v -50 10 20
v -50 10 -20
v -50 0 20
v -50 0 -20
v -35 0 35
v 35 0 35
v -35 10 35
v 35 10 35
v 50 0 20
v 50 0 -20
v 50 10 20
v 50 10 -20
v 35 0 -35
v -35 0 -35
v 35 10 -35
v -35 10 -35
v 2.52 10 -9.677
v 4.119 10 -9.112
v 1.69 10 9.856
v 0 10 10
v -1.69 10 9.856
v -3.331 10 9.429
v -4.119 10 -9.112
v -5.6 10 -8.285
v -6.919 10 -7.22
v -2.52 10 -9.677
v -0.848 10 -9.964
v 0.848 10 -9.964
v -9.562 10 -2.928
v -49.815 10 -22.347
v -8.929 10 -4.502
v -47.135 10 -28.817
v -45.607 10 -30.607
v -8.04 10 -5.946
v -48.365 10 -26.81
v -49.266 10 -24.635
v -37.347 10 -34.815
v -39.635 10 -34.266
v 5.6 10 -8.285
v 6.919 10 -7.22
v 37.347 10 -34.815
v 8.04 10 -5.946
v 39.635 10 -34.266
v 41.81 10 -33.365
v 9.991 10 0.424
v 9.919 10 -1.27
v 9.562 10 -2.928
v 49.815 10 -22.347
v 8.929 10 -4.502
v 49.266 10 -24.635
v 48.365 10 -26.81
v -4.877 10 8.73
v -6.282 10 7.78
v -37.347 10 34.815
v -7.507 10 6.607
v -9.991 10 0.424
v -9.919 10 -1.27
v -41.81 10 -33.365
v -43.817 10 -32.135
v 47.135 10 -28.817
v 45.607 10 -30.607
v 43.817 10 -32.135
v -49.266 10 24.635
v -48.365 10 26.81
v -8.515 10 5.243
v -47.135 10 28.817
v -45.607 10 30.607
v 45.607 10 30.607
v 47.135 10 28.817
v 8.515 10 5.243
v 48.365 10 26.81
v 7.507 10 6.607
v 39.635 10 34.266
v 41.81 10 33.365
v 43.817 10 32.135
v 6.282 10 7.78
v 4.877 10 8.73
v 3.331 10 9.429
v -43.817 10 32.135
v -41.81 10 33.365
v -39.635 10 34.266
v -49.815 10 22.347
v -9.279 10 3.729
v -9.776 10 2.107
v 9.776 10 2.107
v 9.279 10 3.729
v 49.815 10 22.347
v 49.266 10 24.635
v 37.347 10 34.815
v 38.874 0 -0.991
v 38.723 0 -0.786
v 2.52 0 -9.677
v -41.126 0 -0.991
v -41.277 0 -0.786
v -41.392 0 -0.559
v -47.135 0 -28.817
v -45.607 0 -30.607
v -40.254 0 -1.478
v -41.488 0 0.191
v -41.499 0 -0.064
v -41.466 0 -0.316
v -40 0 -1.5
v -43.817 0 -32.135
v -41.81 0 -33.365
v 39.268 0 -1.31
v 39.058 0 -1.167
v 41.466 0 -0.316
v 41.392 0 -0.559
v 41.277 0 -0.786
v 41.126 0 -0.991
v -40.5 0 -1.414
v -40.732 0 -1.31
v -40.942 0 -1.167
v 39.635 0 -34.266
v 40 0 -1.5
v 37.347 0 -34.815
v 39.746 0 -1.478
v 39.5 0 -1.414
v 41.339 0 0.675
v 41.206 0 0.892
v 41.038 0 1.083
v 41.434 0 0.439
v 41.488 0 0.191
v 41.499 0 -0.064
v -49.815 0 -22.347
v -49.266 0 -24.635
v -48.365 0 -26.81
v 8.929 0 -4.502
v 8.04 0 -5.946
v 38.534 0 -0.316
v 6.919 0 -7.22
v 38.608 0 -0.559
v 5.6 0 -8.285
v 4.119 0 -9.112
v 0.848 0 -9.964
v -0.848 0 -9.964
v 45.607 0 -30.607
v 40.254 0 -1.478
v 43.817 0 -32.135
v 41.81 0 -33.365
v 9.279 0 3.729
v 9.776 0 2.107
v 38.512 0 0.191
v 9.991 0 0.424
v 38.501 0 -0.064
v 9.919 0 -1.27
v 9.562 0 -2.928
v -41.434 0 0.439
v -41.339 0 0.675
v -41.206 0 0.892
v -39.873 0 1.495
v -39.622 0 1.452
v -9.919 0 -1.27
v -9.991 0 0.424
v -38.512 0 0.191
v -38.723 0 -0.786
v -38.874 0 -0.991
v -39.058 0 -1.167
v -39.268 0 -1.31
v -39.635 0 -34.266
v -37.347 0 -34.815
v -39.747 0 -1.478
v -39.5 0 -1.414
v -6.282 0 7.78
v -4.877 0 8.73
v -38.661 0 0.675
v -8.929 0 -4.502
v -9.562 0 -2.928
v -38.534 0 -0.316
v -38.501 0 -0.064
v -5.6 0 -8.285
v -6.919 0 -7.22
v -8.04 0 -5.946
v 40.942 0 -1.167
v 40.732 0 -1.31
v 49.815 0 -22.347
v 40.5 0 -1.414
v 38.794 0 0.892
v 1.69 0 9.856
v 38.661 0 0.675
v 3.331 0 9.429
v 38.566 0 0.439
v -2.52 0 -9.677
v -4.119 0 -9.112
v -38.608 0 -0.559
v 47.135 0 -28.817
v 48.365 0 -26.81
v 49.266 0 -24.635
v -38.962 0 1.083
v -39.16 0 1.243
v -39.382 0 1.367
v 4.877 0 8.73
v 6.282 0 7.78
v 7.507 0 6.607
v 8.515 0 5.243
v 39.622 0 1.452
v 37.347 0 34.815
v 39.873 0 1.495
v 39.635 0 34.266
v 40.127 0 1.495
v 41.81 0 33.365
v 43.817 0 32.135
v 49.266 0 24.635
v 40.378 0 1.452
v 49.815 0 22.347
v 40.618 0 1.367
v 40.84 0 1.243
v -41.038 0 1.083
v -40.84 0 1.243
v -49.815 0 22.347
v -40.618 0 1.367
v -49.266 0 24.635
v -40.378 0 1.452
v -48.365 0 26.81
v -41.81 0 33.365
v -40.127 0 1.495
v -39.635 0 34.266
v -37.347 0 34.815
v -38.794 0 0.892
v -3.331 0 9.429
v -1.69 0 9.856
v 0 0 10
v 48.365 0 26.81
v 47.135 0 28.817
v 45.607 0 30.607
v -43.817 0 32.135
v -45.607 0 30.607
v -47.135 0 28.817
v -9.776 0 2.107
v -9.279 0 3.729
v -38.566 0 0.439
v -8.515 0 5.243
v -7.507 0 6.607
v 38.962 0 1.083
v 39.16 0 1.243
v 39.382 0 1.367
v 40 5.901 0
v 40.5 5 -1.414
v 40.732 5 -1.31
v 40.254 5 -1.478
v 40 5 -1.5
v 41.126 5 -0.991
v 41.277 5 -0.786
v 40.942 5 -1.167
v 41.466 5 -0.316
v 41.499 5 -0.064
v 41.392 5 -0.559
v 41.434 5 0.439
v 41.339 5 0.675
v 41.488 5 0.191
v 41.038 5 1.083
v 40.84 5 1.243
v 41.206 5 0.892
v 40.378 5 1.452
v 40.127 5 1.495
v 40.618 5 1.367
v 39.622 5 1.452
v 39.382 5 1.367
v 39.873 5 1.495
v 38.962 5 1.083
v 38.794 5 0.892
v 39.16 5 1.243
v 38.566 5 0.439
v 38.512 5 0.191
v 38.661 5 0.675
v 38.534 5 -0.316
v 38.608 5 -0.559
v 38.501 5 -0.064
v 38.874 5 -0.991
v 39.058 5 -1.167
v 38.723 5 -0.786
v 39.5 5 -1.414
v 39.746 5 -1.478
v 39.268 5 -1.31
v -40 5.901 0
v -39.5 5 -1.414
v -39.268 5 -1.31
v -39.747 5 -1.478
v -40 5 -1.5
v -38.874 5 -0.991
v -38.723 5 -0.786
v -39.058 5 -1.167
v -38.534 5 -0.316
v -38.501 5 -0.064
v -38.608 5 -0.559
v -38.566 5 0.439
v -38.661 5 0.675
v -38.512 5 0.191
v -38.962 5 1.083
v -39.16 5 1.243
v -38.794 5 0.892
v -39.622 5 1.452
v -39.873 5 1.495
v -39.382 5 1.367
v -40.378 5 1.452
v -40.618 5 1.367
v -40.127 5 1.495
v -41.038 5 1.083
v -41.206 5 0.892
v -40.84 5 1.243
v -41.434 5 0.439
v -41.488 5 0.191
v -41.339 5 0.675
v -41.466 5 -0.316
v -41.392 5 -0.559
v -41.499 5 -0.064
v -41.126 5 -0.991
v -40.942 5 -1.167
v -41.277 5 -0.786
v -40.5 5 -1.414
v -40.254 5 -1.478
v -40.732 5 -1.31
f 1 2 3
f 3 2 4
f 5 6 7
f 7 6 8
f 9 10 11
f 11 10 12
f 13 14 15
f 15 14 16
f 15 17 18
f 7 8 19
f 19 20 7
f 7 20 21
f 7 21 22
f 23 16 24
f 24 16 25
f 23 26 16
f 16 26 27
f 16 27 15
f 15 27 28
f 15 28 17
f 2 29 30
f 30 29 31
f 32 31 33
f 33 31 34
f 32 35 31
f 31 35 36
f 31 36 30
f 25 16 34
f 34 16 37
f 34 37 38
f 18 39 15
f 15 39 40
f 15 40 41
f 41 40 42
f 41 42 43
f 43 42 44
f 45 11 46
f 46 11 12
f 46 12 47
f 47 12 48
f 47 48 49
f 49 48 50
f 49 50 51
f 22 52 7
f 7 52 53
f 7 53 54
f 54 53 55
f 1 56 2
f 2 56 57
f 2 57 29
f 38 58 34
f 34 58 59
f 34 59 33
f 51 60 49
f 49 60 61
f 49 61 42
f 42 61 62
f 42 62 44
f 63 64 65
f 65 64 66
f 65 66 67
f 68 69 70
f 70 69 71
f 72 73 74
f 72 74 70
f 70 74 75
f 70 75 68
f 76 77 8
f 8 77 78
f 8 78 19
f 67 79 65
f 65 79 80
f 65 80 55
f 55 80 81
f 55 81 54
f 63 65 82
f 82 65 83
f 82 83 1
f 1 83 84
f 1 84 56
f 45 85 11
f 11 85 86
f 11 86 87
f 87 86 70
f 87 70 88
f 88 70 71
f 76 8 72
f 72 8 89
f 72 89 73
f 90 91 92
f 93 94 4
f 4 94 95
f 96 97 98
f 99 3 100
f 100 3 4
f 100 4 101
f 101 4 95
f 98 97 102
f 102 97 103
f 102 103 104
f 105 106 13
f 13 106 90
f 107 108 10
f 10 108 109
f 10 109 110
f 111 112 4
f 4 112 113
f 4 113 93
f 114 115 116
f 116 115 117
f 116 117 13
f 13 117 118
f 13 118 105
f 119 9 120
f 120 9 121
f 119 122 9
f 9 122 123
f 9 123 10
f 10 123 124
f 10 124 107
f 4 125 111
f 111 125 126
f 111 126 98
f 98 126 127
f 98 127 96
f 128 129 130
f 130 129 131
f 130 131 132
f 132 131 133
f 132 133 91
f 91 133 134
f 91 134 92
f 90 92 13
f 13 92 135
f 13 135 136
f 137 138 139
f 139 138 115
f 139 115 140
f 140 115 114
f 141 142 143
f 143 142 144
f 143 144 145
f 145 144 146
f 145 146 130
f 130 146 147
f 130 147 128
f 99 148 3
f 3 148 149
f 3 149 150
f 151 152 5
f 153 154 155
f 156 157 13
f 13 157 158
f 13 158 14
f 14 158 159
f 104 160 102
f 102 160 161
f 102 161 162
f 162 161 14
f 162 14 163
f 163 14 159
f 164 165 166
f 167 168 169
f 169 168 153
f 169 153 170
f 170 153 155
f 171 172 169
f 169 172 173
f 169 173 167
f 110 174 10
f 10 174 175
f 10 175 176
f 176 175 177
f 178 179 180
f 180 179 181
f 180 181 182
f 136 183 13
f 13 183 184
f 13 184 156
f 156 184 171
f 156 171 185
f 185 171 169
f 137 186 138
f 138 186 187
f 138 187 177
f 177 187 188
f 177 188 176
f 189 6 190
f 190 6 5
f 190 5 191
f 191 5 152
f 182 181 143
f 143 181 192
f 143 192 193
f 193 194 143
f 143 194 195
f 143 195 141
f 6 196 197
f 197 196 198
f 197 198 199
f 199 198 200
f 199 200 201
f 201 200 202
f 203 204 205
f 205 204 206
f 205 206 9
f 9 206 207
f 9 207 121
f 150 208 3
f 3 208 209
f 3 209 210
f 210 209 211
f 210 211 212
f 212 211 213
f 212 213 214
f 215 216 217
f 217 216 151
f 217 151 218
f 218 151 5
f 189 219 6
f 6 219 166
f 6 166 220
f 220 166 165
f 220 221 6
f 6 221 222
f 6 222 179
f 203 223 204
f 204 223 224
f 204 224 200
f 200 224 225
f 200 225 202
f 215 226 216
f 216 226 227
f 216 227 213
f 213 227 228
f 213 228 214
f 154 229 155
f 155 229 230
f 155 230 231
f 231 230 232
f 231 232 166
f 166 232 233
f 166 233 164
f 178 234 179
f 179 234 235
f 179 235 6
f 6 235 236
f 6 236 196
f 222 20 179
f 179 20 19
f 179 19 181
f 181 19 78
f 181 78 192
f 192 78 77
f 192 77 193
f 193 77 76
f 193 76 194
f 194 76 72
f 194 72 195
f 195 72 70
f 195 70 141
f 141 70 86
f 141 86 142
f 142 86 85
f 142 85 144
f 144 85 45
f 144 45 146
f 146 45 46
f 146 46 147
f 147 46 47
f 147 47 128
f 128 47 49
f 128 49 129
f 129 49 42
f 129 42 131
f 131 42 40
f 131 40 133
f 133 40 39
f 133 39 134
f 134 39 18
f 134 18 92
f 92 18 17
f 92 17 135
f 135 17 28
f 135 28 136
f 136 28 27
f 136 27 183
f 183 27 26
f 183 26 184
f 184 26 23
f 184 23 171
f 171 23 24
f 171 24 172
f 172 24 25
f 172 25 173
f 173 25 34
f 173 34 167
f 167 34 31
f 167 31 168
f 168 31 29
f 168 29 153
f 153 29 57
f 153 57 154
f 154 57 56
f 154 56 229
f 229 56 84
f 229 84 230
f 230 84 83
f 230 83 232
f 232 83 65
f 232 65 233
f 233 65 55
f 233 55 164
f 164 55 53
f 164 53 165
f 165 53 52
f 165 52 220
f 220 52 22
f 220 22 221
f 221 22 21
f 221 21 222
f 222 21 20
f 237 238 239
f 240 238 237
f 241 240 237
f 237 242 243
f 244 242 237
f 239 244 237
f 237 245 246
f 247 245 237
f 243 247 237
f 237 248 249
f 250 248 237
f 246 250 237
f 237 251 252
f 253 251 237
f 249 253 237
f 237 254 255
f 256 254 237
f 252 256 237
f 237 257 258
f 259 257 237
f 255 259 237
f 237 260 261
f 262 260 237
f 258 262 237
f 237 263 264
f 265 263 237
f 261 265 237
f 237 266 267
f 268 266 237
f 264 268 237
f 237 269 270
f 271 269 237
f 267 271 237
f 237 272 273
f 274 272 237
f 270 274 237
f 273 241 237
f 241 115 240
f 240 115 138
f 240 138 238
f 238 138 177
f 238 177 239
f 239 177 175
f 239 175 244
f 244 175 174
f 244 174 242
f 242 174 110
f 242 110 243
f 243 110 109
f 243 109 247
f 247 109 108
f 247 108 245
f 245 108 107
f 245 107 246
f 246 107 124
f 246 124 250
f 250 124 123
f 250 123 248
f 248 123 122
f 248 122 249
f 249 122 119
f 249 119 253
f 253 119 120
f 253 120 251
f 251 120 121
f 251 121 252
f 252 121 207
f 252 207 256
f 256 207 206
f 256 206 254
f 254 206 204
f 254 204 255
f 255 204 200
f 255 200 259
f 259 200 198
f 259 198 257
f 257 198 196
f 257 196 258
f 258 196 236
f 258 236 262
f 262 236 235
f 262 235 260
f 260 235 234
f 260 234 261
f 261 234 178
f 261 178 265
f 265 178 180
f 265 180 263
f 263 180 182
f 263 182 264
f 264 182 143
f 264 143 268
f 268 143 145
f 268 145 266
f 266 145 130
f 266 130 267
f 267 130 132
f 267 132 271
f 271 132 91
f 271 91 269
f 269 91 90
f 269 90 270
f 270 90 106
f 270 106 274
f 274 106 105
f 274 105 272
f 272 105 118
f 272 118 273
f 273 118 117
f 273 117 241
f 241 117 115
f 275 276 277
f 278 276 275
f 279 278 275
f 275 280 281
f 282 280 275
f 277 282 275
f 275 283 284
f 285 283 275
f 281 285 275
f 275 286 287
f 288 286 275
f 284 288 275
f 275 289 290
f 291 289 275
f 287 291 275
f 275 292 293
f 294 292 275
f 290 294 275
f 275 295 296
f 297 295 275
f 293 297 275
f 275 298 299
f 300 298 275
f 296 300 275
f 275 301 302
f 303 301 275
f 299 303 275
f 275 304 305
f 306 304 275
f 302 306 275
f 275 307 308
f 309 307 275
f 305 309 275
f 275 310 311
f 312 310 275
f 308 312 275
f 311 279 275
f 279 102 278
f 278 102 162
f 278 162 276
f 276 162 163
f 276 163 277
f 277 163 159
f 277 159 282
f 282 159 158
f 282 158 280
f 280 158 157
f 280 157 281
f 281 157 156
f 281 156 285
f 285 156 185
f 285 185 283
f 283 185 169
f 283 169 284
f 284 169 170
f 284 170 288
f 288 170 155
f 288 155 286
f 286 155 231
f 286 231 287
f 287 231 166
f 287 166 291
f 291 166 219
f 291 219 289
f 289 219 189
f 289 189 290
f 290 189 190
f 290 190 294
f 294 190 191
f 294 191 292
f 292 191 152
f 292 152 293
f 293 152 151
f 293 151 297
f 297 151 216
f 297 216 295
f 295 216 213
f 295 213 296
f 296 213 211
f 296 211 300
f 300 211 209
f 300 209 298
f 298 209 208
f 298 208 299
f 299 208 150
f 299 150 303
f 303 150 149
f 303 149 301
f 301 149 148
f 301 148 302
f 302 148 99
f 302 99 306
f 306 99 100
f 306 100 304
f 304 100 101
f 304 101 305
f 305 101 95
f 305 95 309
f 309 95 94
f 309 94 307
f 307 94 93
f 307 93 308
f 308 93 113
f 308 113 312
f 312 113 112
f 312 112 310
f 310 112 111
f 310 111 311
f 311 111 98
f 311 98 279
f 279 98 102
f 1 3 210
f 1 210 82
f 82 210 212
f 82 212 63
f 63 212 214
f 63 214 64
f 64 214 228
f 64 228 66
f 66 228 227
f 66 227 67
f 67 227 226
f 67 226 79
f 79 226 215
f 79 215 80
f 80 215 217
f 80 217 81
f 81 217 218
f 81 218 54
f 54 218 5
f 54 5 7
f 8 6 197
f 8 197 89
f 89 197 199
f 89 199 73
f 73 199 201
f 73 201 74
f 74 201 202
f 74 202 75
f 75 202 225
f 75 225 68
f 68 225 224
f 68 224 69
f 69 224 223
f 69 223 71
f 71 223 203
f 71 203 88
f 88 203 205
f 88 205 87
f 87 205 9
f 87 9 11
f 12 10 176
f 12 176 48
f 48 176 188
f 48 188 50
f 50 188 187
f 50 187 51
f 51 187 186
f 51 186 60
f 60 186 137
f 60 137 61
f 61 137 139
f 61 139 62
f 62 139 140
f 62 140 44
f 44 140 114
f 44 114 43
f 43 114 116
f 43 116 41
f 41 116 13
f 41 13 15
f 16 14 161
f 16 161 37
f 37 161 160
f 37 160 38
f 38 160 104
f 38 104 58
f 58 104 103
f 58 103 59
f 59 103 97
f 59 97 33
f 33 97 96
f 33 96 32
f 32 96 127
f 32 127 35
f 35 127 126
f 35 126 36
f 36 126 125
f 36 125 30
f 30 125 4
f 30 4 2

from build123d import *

# Parameters (mm, degrees)
SKETCH1_W                 = 100
SKETCH1_H                 = 70
BOSS_EXTRUDE1_DEPTH       = 10
SKETCH2_R                 = 10
CUT_EXTRUDE1_DEPTH        = 11
F_3_0MM_DOWEL_HOLE1_D     = 3
F_3_0MM_DOWEL_HOLE1_DEPTH = 5
F_3_0MM_DOWEL_HOLE1_TIP   = 0.901290929
FILLET2_R                 = 15


with BuildPart() as part:
    # Sketch1 → Boss-Extrude1 (new body)
    with BuildSketch(Plane(origin=(0, 0, 0), x_dir=(1, 0, 0), z_dir=(0, 1, 0))):
        Rectangle(SKETCH1_W, SKETCH1_H)
    extrude(amount=BOSS_EXTRUDE1_DEPTH)

    # Sketch2 → Cut-Extrude1 (cut, through all)
    with BuildSketch(Plane(origin=(0, 10, 0), x_dir=(1, 0, 0), z_dir=(0, 1, 0))):
        Circle(SKETCH2_R)
    extrude(amount=-CUT_EXTRUDE1_DEPTH, mode=Mode.SUBTRACT)

    # Ø3.0mm Dowel Hole1
    with Locations(Plane(origin=(0, 0, 0), x_dir=(-1, 0, 0), z_dir=(0, -1, 0))):
        with Locations((40, 0), (-40, 0)):
            Hole(F_3_0MM_DOWEL_HOLE1_D / 2, depth=F_3_0MM_DOWEL_HOLE1_DEPTH)
            with Locations((0, 0, -(F_3_0MM_DOWEL_HOLE1_DEPTH + F_3_0MM_DOWEL_HOLE1_TIP / 2))):  # 118° drill point
                Cone(0, F_3_0MM_DOWEL_HOLE1_D / 2, F_3_0MM_DOWEL_HOLE1_TIP, mode=Mode.SUBTRACT)

    # Fillet2
    fillet2_edges = [part.edges().sort_by_distance(p)[0] for p in [
        (-50, 5, -35),
        (50, 5, -35),
        (50, 5, 35),
        (-50, 5, 35),
    ]]
    fillet(fillet2_edges, radius=FILLET2_R)


solid = part.part
